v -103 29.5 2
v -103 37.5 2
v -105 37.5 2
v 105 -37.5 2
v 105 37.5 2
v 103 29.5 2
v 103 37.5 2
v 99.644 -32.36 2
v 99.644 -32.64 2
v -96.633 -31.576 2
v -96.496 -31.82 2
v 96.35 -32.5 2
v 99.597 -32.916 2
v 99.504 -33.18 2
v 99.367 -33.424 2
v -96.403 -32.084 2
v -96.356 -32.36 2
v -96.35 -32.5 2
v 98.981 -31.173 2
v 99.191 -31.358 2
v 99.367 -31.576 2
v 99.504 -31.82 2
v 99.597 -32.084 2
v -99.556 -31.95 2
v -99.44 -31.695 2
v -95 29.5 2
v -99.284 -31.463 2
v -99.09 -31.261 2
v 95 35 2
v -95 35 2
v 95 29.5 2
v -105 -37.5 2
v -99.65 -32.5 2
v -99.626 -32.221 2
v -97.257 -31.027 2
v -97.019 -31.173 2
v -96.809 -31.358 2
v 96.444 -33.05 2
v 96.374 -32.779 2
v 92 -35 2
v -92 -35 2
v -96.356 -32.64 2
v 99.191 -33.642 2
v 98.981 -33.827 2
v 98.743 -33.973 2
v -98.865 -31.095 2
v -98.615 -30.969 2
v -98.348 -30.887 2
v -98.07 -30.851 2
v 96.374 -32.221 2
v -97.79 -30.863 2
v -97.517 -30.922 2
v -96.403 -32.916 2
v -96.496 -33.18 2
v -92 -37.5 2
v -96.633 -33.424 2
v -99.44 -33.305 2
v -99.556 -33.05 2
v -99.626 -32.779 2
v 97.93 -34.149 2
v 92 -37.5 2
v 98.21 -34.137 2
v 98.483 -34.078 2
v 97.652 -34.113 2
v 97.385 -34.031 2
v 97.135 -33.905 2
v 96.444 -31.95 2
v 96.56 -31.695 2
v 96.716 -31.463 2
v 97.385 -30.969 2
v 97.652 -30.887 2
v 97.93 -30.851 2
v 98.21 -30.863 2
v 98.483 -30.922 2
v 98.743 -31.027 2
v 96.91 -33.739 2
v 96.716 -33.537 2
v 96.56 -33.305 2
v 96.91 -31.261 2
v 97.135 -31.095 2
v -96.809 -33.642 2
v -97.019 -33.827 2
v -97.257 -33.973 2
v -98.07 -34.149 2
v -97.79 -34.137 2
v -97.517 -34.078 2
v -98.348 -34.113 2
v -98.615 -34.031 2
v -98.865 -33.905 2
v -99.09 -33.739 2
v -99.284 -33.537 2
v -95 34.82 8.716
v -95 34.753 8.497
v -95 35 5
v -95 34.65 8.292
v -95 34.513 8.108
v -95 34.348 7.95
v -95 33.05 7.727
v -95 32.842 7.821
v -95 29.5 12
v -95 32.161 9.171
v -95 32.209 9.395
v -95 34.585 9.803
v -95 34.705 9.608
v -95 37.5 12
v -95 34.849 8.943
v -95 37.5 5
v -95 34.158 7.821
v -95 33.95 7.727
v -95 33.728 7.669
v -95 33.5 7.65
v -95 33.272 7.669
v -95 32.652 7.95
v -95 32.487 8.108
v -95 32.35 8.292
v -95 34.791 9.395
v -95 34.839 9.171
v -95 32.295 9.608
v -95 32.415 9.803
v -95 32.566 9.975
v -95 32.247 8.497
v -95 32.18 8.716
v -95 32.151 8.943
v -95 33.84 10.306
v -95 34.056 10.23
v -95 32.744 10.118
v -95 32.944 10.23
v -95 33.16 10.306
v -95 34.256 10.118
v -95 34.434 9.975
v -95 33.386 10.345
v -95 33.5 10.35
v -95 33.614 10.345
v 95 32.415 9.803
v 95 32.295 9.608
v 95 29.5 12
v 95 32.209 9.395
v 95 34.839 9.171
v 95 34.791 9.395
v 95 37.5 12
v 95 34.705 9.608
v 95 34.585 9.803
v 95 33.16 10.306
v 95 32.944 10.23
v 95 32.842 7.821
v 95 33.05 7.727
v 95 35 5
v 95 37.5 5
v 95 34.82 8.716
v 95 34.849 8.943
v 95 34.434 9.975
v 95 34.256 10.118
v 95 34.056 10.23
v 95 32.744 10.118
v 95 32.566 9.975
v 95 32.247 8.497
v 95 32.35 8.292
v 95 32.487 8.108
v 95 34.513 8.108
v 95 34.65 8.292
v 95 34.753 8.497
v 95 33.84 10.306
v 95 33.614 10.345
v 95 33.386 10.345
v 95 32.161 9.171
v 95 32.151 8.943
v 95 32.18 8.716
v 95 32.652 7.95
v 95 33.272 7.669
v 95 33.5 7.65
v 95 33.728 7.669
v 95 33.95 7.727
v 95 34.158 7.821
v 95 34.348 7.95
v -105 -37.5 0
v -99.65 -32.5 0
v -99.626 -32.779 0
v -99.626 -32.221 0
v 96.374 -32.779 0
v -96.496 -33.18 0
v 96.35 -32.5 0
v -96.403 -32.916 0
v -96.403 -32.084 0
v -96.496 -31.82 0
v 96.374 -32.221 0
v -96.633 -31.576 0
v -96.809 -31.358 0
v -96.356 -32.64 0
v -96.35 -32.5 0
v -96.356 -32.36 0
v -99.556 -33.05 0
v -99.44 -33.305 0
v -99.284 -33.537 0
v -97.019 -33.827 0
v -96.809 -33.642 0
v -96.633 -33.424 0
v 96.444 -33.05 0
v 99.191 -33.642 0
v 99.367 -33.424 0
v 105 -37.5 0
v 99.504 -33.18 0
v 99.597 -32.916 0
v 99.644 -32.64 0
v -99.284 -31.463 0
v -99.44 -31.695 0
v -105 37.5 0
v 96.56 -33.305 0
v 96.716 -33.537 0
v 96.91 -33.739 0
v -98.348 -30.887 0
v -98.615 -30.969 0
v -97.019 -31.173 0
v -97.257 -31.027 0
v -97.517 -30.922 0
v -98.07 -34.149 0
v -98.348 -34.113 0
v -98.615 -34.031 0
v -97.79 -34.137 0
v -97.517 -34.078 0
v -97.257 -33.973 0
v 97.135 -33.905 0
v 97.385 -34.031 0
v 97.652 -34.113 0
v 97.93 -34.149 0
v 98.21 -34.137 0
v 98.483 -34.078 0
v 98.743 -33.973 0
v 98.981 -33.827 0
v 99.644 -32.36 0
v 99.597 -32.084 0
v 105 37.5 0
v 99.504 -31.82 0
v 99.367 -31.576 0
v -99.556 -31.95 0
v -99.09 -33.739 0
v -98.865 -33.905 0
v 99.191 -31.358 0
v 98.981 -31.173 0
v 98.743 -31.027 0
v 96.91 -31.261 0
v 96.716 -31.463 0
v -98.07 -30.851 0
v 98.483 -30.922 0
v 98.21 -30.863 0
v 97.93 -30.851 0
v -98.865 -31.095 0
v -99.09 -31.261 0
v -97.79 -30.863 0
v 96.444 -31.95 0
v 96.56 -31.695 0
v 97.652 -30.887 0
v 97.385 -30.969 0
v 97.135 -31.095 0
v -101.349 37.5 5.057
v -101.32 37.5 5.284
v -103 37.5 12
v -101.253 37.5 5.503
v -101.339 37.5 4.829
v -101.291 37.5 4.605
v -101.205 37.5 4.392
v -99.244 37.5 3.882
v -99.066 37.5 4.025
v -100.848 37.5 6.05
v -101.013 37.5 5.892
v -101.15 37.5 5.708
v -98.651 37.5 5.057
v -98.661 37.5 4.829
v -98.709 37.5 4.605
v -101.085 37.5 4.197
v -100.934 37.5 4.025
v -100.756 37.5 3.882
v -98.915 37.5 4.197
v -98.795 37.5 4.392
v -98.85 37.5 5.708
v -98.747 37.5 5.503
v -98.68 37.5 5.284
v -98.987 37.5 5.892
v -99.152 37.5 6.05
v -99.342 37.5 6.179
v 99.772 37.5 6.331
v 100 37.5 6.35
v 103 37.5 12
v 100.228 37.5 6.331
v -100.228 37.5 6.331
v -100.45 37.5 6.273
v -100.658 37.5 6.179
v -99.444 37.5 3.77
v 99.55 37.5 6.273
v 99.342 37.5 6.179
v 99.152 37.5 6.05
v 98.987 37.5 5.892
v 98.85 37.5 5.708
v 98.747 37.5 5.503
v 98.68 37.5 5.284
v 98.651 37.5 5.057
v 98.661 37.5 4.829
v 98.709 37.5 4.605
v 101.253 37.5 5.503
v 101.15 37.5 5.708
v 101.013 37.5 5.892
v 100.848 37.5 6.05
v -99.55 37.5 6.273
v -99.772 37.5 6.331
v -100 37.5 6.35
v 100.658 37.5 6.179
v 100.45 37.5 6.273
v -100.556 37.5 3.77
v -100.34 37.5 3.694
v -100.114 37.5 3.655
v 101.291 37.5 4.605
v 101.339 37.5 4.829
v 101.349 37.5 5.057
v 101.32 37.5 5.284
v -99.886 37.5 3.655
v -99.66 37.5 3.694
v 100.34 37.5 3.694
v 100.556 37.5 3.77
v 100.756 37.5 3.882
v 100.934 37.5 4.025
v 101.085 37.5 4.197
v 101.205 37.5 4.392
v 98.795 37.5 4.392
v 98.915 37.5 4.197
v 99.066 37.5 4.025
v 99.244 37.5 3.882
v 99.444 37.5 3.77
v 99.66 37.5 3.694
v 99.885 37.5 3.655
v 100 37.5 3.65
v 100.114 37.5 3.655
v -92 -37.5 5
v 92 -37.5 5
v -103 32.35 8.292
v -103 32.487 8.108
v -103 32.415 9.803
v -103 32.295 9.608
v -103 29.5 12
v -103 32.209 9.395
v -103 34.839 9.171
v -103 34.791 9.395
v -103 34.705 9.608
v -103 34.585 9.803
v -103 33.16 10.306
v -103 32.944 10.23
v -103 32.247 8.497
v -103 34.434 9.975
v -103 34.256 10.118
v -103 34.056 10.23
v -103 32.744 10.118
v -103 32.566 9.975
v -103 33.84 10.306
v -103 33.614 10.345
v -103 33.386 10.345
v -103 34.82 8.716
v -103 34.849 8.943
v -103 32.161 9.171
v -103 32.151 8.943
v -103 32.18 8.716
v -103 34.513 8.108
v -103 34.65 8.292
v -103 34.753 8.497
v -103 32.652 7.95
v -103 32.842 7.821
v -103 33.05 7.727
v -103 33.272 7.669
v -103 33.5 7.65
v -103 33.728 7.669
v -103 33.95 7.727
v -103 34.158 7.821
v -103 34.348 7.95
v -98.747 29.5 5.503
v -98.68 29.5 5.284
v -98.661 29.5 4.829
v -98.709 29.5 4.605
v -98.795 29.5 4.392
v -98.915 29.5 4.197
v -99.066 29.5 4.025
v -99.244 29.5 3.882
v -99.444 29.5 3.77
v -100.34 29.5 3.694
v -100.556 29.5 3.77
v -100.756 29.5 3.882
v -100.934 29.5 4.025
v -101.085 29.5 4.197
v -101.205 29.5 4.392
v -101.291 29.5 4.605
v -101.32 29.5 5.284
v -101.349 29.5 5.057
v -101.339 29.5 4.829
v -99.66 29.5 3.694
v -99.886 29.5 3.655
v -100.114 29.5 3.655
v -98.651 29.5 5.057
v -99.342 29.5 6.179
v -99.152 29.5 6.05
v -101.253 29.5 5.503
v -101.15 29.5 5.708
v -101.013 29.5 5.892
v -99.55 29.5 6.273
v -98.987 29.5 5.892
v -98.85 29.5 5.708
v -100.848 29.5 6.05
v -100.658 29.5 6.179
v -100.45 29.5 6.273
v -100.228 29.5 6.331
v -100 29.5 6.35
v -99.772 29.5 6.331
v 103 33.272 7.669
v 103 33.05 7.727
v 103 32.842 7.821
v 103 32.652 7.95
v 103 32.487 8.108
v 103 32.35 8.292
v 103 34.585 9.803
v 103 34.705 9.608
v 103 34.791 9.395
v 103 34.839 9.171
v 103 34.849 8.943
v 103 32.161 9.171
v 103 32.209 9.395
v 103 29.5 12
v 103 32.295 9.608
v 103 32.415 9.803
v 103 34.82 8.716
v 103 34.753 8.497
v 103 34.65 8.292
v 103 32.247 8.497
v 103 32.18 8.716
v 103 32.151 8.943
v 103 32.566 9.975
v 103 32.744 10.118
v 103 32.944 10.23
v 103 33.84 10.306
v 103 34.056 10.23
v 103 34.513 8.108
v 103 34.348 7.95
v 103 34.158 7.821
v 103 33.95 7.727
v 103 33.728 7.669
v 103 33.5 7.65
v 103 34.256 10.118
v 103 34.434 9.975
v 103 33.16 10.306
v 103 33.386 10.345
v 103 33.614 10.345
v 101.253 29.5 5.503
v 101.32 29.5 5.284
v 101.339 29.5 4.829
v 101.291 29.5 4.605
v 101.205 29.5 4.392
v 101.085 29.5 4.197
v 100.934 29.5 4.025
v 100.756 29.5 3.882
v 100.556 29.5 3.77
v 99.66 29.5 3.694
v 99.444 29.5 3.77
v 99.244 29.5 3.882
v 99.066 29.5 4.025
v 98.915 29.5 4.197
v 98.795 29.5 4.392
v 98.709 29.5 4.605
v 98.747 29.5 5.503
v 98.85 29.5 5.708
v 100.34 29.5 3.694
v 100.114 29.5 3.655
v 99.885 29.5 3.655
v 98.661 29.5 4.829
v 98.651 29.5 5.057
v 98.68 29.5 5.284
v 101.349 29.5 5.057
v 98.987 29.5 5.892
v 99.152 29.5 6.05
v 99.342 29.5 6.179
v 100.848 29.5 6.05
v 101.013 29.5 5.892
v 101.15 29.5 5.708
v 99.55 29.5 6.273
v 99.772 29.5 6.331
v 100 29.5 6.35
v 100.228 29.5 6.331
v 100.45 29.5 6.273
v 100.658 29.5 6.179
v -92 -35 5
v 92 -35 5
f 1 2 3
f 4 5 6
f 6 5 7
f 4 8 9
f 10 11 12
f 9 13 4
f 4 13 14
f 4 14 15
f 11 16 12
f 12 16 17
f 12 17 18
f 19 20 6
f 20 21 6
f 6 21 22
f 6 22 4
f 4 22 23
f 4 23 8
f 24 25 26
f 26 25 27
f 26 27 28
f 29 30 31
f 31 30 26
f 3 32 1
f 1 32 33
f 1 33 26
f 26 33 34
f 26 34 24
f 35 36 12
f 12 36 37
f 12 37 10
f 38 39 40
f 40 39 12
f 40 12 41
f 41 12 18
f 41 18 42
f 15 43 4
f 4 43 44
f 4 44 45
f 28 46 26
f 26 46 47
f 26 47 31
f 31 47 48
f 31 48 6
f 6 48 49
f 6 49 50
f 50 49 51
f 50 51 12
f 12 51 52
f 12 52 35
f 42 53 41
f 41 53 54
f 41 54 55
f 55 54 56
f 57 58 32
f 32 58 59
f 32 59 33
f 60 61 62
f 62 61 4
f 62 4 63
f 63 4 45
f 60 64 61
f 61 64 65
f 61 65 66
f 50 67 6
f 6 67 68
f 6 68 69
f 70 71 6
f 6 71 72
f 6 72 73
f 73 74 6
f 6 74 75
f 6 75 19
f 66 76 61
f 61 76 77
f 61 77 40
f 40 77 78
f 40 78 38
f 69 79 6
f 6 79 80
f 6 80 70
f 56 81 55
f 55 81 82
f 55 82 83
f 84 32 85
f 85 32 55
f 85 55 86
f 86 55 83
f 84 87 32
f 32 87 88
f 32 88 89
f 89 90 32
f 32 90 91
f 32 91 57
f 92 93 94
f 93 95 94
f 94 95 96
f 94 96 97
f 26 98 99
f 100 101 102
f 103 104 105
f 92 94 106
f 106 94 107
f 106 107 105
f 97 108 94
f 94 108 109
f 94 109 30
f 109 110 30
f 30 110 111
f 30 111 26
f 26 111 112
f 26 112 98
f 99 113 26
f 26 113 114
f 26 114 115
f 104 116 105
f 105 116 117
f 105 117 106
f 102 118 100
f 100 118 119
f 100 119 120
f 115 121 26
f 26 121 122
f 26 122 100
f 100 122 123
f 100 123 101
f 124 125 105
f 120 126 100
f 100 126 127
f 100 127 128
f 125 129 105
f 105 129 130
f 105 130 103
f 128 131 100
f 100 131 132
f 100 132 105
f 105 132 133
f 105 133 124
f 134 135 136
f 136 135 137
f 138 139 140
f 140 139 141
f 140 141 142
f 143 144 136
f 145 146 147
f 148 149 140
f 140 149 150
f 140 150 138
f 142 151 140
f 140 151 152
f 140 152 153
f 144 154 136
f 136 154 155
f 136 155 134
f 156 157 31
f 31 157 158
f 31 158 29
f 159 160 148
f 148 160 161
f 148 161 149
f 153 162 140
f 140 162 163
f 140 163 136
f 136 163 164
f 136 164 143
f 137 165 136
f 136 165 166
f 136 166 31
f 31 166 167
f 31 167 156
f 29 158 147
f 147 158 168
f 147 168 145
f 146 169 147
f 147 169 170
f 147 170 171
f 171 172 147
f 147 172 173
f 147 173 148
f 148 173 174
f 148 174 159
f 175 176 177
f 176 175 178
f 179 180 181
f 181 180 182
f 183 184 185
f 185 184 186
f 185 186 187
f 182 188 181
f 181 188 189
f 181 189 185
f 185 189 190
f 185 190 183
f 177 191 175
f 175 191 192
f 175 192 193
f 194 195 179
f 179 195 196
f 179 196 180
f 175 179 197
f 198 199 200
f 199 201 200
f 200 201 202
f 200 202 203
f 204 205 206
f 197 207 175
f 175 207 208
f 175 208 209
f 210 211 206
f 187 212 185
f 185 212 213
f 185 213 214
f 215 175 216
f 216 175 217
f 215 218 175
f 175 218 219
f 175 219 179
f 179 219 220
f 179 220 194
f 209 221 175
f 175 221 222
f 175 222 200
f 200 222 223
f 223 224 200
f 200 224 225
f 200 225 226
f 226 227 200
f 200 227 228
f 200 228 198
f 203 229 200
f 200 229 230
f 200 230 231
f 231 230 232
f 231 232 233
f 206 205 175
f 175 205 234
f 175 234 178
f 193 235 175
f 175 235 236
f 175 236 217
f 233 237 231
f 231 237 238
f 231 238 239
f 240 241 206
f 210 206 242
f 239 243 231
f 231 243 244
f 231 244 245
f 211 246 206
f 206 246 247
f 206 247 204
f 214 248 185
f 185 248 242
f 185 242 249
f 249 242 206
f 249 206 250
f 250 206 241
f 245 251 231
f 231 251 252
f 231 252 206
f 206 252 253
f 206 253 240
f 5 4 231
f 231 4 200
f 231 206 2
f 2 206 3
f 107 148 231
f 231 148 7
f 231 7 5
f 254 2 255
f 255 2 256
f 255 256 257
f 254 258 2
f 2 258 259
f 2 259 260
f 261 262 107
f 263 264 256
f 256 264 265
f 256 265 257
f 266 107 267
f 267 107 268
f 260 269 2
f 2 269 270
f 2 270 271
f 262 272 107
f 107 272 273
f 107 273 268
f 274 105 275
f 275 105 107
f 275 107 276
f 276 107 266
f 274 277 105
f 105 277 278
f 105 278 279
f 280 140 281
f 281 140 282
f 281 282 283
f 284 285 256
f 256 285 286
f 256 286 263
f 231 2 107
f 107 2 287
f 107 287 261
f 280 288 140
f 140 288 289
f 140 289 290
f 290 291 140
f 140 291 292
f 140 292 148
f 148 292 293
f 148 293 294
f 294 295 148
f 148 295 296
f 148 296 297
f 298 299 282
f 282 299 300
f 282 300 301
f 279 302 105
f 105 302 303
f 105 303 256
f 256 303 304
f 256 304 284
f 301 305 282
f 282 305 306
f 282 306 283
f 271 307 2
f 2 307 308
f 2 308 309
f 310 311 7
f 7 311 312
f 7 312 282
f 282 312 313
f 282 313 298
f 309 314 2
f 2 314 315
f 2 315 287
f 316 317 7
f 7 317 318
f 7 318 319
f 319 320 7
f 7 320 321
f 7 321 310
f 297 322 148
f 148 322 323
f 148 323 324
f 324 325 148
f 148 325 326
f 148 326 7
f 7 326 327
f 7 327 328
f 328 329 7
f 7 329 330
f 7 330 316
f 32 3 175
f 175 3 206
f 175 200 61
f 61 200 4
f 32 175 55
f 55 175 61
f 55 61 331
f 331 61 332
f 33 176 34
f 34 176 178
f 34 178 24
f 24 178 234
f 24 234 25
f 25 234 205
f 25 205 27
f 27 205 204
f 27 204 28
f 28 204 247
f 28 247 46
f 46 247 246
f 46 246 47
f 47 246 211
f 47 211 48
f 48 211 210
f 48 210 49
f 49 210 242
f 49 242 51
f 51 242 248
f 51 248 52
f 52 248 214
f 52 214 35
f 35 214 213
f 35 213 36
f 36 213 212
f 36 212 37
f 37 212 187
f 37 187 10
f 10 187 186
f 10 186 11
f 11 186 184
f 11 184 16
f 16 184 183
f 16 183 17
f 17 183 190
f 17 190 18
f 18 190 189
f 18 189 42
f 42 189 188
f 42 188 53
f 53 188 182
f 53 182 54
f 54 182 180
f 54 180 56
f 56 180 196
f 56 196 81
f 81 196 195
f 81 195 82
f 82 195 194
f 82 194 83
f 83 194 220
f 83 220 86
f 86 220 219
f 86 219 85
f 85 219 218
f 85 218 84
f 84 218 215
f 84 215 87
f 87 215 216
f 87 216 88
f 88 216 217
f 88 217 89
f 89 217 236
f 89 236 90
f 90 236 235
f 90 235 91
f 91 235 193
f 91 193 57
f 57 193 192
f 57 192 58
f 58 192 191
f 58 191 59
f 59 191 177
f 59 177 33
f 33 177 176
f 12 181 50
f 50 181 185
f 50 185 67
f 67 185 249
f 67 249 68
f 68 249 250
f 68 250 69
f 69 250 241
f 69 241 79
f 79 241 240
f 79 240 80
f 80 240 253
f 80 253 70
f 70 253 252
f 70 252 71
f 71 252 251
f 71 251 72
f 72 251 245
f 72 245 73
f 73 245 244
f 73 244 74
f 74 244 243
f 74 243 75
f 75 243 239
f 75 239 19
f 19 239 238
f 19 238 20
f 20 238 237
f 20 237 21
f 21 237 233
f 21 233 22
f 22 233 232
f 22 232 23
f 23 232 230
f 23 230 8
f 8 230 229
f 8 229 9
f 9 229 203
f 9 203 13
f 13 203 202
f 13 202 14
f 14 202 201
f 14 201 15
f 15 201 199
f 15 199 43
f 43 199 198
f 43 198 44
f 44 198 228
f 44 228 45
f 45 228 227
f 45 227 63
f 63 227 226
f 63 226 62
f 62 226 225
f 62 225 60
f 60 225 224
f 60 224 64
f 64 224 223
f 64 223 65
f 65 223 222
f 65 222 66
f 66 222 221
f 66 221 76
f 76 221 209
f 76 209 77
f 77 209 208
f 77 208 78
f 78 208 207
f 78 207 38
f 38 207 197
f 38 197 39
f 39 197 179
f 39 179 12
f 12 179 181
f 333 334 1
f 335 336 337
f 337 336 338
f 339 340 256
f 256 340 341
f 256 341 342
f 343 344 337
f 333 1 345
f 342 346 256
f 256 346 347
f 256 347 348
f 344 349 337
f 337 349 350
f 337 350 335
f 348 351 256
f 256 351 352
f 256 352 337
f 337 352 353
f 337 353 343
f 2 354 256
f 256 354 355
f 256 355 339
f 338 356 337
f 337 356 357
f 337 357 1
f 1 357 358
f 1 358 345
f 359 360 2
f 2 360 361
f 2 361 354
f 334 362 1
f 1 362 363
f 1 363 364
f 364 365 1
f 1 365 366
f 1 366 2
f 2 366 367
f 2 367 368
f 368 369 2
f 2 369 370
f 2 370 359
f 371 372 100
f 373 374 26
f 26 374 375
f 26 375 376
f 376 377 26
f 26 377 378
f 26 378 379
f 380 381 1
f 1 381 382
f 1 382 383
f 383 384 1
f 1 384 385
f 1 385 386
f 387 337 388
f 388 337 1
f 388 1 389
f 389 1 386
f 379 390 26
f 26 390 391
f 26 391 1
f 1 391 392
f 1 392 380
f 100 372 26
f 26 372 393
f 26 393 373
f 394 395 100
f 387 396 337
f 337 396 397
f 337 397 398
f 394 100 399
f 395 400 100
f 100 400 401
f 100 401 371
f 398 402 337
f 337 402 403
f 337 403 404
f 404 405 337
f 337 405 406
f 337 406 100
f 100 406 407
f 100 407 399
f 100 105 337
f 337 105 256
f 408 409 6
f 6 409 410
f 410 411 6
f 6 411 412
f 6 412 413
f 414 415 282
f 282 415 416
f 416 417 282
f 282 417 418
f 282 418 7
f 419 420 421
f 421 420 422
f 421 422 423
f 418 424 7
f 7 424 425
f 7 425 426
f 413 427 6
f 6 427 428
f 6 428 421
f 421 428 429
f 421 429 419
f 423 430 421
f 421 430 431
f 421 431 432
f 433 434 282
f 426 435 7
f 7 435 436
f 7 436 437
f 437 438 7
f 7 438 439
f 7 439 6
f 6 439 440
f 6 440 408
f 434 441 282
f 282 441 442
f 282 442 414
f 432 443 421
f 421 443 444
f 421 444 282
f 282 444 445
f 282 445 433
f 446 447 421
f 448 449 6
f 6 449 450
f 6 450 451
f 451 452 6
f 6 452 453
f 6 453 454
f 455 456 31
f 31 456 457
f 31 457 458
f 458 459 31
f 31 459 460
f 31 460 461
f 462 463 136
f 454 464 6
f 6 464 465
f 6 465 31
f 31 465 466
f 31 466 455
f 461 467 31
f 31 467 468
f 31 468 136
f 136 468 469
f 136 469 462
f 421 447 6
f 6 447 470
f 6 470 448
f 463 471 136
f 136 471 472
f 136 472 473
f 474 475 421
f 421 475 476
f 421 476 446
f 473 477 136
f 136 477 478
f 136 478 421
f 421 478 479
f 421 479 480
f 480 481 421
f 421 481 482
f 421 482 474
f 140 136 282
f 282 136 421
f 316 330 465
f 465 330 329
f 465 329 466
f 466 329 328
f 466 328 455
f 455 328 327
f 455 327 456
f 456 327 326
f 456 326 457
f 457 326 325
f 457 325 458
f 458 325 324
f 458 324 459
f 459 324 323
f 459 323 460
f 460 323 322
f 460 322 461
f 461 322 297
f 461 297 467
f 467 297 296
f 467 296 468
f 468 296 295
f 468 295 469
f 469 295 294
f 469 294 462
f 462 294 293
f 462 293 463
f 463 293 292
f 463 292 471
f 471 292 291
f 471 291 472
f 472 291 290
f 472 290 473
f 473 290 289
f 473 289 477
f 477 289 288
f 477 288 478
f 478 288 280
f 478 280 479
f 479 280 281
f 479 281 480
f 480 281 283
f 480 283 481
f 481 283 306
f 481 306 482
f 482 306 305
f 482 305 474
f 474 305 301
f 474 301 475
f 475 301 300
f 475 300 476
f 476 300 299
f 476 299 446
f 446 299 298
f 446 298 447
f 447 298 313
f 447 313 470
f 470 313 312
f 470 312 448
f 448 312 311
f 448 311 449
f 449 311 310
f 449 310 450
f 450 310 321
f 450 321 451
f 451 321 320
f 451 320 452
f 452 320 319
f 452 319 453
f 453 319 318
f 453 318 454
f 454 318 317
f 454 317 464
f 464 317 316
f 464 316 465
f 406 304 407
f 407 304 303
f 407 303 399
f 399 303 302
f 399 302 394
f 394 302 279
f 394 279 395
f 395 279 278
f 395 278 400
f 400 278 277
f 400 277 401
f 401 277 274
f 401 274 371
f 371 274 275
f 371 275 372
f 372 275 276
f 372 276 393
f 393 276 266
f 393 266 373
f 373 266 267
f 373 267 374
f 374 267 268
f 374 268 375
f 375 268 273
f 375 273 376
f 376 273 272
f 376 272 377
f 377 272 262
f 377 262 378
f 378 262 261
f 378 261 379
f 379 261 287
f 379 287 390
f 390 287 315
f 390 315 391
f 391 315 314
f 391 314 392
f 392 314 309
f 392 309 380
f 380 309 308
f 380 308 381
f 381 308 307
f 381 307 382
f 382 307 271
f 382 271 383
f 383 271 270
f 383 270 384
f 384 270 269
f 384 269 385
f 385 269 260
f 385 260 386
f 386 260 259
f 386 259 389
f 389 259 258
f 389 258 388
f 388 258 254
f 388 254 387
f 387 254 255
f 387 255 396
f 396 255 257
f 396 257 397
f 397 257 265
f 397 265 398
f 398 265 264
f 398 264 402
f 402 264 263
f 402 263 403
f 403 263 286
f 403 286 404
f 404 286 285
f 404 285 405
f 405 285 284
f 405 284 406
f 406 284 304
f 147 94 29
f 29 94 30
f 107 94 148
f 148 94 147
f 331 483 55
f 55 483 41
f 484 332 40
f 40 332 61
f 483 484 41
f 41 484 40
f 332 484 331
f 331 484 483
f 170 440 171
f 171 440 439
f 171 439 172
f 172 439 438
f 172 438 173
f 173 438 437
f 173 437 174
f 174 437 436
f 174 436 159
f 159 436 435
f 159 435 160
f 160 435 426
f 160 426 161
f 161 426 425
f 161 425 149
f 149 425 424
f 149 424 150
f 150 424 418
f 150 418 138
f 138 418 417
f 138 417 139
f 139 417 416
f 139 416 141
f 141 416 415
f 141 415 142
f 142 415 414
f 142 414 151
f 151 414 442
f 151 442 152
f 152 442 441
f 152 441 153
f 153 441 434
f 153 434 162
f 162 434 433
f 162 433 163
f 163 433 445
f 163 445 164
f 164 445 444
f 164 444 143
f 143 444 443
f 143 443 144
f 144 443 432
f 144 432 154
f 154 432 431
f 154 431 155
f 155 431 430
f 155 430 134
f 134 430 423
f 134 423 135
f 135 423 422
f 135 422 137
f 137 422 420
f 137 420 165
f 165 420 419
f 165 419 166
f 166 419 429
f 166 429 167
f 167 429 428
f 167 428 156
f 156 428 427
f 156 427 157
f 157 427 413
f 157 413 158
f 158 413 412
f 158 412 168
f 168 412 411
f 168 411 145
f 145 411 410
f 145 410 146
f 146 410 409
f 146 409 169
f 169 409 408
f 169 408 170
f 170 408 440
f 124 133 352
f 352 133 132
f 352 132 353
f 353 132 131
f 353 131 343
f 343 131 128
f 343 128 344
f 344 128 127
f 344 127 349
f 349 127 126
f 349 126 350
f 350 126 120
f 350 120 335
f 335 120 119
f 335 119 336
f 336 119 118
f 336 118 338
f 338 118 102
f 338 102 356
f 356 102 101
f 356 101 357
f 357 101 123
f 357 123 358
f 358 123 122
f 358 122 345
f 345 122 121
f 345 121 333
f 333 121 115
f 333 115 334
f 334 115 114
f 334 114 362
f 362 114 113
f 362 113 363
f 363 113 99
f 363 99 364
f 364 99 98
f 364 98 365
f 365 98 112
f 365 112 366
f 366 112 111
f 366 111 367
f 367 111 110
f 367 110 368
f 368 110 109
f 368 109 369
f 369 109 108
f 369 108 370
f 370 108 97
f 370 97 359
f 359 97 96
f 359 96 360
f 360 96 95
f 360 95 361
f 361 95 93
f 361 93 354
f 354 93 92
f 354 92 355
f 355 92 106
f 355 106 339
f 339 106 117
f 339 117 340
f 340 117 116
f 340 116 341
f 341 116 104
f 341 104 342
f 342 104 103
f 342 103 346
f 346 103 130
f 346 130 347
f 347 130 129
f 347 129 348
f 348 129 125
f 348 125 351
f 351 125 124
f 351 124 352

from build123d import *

# Parameters (mm, degrees)
SKETCH1_W           = 210
SKETCH1_H           = 75
SKETCH1_R           = 1.65
BOSS_EXTRUDE1_DEPTH = 2
SKETCH2_W           = 8
SKETCH2_H           = 8
BOSS_EXTRUDE2_DEPTH = 10
SKETCH3_R           = 1.35
CUT_EXTRUDE1_DEPTH  = 10
SKETCH4_W           = 190
SKETCH4_H           = 2.5
BOSS_EXTRUDE3_DEPTH = 3
SKETCH5_W           = 184
SKETCH5_H           = 2.5
BOSS_EXTRUDE4_DEPTH = 3
SKETCH6_R           = 1.35
CUT_EXTRUDE2_DEPTH  = 209


with BuildPart() as part:
    # Sketch1 → Boss-Extrude1 (new body)
    with BuildSketch(Plane.XY):
        Rectangle(SKETCH1_W, SKETCH1_H)
        with Locations((-98, -32.5)):
            Circle(SKETCH1_R, mode=Mode.SUBTRACT)
        with Locations((98, -32.5)):
            Circle(SKETCH1_R, mode=Mode.SUBTRACT)
    extrude(amount=BOSS_EXTRUDE1_DEPTH)

    # Sketch2 → Boss-Extrude2 (add)
    with BuildSketch(Plane.XY.offset(2)):
        with Locations((-99, 33.5)):
            Rectangle(SKETCH2_W, SKETCH2_H)
        with Locations((99, 33.5)):
            Rectangle(SKETCH2_W, SKETCH2_H)
    extrude(amount=BOSS_EXTRUDE2_DEPTH)

    # Sketch3 → Cut-Extrude1 (cut)
    with BuildSketch(Plane(origin=(0, 37.5, 0), x_dir=(1, 0, 0), z_dir=(0, 1, 0))):
        with Locations((-100, -5)):
            Circle(SKETCH3_R)
        with Locations((100, -5)):
            Circle(SKETCH3_R)
    extrude(amount=-CUT_EXTRUDE1_DEPTH, mode=Mode.SUBTRACT)

    # Sketch4 → Boss-Extrude3 (add)
    with BuildSketch(Plane.XY.offset(2)):
        with Locations((0, 36.25)):
            Rectangle(SKETCH4_W, SKETCH4_H)
    extrude(amount=BOSS_EXTRUDE3_DEPTH)

    # Sketch5 → Boss-Extrude4 (add)
    with BuildSketch(Plane.XY.offset(2)):
        with Locations((0, -36.25)):
            Rectangle(SKETCH5_W, SKETCH5_H)
    extrude(amount=BOSS_EXTRUDE4_DEPTH)

    # Sketch6 → Cut-Extrude2 (cut, through all)
    with BuildSketch(Plane(origin=(103, 0, 0), x_dir=(0, 0, -1), z_dir=(1, 0, 0))):
        with Locations((-9, 33.5)):
            Circle(SKETCH6_R)
    extrude(amount=-CUT_EXTRUDE2_DEPTH, mode=Mode.SUBTRACT)


solid = part.part
